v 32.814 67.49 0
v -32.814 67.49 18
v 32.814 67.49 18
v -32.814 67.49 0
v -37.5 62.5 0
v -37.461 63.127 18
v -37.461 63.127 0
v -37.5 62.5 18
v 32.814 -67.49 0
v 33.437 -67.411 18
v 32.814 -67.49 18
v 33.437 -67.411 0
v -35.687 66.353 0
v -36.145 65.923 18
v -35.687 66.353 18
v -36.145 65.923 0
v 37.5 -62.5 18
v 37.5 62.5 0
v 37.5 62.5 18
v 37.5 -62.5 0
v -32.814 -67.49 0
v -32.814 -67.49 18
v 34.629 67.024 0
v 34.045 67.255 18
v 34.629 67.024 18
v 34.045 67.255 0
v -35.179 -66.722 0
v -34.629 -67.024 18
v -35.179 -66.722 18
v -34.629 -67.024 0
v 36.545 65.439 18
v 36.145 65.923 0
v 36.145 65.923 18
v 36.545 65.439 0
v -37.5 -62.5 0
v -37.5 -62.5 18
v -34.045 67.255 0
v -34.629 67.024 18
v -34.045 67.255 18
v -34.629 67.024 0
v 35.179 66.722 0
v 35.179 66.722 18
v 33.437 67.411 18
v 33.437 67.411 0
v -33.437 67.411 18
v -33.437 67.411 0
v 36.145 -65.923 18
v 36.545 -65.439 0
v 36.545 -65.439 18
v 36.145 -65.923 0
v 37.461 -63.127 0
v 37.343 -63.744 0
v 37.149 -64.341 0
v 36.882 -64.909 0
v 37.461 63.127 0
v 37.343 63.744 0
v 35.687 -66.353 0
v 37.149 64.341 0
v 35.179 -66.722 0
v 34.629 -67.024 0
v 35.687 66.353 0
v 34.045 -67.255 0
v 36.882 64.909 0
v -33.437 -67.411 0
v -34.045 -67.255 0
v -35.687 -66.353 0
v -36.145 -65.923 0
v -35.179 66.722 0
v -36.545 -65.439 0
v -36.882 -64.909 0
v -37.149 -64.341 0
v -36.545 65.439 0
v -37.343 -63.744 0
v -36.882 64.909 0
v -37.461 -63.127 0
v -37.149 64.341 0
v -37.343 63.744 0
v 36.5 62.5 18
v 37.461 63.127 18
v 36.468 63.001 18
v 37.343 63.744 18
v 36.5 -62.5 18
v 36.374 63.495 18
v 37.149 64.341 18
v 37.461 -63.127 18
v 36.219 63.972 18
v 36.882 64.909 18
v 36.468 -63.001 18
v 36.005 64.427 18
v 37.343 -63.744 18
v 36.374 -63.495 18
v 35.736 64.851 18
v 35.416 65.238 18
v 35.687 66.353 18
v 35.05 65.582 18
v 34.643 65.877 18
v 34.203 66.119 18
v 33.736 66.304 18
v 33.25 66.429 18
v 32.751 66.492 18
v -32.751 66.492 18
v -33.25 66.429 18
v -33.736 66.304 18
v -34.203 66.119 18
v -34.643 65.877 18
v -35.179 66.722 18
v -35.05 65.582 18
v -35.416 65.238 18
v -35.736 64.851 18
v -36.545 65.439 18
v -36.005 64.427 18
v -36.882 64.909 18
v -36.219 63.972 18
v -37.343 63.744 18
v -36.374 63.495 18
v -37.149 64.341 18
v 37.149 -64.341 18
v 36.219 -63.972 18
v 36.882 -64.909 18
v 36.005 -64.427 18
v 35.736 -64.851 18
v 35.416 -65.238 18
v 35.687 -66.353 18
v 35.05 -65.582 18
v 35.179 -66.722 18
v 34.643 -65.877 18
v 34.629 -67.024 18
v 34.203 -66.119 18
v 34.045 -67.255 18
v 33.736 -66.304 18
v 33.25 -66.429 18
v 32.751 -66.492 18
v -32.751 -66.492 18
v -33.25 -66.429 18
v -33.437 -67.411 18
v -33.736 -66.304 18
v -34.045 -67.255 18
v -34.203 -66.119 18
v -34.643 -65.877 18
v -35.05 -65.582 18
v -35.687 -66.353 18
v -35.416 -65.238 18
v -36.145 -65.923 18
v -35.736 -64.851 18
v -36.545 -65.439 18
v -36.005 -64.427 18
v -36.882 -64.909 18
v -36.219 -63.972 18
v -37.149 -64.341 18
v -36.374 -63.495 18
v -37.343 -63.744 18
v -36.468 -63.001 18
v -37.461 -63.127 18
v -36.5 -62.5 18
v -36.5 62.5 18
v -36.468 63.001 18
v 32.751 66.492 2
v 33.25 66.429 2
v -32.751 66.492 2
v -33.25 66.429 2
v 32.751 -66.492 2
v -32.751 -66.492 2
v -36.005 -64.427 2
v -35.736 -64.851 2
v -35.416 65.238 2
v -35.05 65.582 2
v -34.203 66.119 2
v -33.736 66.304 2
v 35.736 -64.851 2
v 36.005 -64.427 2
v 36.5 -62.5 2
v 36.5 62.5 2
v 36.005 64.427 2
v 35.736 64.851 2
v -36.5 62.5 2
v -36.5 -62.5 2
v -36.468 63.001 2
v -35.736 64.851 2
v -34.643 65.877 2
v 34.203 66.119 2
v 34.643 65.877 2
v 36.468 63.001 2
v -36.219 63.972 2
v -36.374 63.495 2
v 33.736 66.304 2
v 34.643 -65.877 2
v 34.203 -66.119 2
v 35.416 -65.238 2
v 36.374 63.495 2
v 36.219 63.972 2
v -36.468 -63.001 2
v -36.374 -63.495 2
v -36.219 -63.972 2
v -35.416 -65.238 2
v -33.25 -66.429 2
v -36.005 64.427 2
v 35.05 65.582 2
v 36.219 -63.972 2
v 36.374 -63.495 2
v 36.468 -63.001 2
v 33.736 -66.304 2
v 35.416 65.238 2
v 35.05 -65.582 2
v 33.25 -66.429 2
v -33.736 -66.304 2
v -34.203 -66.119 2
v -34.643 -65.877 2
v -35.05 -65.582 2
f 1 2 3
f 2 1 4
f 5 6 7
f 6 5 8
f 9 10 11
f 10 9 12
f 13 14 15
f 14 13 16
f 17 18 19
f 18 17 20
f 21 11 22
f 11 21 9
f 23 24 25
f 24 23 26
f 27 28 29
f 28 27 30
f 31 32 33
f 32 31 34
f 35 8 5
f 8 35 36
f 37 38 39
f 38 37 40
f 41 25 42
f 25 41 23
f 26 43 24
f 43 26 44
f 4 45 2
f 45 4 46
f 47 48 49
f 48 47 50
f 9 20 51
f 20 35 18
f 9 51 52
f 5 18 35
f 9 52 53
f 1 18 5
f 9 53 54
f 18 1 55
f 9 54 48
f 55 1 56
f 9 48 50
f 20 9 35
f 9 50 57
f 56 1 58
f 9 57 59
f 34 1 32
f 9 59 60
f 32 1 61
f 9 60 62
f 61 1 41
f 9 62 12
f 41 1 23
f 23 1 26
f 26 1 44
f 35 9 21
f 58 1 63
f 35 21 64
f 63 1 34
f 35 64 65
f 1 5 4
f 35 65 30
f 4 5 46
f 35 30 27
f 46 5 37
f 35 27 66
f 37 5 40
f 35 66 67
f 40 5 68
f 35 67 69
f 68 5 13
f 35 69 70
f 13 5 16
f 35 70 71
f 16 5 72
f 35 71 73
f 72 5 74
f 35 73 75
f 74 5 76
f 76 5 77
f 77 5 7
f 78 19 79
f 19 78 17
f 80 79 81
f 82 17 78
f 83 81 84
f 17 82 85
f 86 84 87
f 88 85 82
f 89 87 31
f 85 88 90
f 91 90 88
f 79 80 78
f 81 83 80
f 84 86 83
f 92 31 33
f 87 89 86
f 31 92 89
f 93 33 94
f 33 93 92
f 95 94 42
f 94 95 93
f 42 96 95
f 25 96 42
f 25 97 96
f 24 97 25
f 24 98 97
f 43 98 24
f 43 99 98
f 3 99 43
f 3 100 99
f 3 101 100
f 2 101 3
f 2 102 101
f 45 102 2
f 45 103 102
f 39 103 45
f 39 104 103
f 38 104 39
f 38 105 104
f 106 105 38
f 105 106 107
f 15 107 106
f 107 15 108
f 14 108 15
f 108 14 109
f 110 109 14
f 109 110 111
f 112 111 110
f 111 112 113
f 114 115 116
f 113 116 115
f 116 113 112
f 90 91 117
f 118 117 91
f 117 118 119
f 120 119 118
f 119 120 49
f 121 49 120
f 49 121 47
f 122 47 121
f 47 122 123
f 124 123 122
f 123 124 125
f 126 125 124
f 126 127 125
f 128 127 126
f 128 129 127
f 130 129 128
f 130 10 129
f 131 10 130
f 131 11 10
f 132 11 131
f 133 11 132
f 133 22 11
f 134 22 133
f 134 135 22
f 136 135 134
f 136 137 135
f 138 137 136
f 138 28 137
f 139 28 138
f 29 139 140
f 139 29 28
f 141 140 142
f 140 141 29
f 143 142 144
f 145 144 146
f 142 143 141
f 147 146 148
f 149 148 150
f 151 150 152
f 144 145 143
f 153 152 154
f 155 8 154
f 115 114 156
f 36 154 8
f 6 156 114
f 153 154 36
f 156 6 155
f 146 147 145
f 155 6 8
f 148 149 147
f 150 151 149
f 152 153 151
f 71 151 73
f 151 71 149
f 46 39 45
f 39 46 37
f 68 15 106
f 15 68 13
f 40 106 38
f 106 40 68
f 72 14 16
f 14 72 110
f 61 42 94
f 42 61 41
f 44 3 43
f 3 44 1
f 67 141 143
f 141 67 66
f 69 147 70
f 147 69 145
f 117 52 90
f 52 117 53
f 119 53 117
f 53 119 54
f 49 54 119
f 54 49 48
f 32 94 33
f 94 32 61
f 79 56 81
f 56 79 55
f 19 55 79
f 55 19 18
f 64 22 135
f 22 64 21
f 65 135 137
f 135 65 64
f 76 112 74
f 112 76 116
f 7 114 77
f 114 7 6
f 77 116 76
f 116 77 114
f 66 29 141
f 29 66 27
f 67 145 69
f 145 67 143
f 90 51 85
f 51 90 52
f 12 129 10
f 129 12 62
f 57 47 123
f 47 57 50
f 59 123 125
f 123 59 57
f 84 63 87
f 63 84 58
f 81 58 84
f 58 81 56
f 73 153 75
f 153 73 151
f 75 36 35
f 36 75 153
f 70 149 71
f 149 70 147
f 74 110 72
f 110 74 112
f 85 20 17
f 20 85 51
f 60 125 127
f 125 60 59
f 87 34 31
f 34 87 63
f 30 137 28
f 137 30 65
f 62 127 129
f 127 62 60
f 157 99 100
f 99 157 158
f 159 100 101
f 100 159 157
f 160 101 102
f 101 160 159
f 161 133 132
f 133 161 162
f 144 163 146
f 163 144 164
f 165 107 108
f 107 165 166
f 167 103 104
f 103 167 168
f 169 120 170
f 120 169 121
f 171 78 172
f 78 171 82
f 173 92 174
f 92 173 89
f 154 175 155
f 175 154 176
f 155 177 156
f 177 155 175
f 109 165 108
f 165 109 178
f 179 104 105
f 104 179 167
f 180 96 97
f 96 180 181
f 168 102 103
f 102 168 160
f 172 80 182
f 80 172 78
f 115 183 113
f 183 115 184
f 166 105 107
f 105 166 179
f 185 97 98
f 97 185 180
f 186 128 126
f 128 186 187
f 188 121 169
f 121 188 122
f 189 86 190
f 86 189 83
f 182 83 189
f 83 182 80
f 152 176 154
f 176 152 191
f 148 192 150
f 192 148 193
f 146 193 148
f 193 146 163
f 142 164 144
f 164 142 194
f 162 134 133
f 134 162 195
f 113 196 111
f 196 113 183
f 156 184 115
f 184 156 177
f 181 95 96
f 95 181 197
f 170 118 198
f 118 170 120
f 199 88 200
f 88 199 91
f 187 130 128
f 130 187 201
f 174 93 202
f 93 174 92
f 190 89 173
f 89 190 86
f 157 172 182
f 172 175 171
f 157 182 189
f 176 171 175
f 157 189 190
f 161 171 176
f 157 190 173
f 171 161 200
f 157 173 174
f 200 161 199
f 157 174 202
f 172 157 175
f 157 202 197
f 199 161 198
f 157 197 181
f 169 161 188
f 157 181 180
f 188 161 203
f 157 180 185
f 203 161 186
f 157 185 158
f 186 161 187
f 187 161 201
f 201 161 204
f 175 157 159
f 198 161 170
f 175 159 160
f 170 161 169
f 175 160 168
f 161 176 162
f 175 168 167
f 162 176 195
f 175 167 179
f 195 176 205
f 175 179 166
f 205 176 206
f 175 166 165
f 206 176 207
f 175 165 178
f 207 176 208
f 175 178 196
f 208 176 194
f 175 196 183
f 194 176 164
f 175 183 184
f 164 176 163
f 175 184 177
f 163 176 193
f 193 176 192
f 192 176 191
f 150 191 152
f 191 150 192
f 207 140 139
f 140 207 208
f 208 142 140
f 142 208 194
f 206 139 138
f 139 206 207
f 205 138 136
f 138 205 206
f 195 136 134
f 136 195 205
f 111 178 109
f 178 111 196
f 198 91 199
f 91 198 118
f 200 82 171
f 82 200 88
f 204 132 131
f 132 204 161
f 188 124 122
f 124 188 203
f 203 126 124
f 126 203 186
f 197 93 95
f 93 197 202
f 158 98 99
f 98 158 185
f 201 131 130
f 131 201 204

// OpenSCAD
$fn = 50;


difference() {
	union() {
		hull() {
			translate(v = [-32.5000000000, 62.5000000000, 0]) {
				cylinder(h = 18, r = 5);
			}
			translate(v = [32.5000000000, 62.5000000000, 0]) {
				cylinder(h = 18, r = 5);
			}
			translate(v = [-32.5000000000, -62.5000000000, 0]) {
				cylinder(h = 18, r = 5);
			}
			translate(v = [32.5000000000, -62.5000000000, 0]) {
				cylinder(h = 18, r = 5);
			}
		}
	}
	union() {
		translate(v = [0, 0, 2]) {
			hull() {
				translate(v = [-32.5000000000, 62.5000000000, 0]) {
					cylinder(h = 16, r = 4);
				}
				translate(v = [32.5000000000, 62.5000000000, 0]) {
					cylinder(h = 16, r = 4);
				}
				translate(v = [-32.5000000000, -62.5000000000, 0]) {
					cylinder(h = 16, r = 4);
				}
				translate(v = [32.5000000000, -62.5000000000, 0]) {
					cylinder(h = 16, r = 4);
				}
			}
		}
	}
}
